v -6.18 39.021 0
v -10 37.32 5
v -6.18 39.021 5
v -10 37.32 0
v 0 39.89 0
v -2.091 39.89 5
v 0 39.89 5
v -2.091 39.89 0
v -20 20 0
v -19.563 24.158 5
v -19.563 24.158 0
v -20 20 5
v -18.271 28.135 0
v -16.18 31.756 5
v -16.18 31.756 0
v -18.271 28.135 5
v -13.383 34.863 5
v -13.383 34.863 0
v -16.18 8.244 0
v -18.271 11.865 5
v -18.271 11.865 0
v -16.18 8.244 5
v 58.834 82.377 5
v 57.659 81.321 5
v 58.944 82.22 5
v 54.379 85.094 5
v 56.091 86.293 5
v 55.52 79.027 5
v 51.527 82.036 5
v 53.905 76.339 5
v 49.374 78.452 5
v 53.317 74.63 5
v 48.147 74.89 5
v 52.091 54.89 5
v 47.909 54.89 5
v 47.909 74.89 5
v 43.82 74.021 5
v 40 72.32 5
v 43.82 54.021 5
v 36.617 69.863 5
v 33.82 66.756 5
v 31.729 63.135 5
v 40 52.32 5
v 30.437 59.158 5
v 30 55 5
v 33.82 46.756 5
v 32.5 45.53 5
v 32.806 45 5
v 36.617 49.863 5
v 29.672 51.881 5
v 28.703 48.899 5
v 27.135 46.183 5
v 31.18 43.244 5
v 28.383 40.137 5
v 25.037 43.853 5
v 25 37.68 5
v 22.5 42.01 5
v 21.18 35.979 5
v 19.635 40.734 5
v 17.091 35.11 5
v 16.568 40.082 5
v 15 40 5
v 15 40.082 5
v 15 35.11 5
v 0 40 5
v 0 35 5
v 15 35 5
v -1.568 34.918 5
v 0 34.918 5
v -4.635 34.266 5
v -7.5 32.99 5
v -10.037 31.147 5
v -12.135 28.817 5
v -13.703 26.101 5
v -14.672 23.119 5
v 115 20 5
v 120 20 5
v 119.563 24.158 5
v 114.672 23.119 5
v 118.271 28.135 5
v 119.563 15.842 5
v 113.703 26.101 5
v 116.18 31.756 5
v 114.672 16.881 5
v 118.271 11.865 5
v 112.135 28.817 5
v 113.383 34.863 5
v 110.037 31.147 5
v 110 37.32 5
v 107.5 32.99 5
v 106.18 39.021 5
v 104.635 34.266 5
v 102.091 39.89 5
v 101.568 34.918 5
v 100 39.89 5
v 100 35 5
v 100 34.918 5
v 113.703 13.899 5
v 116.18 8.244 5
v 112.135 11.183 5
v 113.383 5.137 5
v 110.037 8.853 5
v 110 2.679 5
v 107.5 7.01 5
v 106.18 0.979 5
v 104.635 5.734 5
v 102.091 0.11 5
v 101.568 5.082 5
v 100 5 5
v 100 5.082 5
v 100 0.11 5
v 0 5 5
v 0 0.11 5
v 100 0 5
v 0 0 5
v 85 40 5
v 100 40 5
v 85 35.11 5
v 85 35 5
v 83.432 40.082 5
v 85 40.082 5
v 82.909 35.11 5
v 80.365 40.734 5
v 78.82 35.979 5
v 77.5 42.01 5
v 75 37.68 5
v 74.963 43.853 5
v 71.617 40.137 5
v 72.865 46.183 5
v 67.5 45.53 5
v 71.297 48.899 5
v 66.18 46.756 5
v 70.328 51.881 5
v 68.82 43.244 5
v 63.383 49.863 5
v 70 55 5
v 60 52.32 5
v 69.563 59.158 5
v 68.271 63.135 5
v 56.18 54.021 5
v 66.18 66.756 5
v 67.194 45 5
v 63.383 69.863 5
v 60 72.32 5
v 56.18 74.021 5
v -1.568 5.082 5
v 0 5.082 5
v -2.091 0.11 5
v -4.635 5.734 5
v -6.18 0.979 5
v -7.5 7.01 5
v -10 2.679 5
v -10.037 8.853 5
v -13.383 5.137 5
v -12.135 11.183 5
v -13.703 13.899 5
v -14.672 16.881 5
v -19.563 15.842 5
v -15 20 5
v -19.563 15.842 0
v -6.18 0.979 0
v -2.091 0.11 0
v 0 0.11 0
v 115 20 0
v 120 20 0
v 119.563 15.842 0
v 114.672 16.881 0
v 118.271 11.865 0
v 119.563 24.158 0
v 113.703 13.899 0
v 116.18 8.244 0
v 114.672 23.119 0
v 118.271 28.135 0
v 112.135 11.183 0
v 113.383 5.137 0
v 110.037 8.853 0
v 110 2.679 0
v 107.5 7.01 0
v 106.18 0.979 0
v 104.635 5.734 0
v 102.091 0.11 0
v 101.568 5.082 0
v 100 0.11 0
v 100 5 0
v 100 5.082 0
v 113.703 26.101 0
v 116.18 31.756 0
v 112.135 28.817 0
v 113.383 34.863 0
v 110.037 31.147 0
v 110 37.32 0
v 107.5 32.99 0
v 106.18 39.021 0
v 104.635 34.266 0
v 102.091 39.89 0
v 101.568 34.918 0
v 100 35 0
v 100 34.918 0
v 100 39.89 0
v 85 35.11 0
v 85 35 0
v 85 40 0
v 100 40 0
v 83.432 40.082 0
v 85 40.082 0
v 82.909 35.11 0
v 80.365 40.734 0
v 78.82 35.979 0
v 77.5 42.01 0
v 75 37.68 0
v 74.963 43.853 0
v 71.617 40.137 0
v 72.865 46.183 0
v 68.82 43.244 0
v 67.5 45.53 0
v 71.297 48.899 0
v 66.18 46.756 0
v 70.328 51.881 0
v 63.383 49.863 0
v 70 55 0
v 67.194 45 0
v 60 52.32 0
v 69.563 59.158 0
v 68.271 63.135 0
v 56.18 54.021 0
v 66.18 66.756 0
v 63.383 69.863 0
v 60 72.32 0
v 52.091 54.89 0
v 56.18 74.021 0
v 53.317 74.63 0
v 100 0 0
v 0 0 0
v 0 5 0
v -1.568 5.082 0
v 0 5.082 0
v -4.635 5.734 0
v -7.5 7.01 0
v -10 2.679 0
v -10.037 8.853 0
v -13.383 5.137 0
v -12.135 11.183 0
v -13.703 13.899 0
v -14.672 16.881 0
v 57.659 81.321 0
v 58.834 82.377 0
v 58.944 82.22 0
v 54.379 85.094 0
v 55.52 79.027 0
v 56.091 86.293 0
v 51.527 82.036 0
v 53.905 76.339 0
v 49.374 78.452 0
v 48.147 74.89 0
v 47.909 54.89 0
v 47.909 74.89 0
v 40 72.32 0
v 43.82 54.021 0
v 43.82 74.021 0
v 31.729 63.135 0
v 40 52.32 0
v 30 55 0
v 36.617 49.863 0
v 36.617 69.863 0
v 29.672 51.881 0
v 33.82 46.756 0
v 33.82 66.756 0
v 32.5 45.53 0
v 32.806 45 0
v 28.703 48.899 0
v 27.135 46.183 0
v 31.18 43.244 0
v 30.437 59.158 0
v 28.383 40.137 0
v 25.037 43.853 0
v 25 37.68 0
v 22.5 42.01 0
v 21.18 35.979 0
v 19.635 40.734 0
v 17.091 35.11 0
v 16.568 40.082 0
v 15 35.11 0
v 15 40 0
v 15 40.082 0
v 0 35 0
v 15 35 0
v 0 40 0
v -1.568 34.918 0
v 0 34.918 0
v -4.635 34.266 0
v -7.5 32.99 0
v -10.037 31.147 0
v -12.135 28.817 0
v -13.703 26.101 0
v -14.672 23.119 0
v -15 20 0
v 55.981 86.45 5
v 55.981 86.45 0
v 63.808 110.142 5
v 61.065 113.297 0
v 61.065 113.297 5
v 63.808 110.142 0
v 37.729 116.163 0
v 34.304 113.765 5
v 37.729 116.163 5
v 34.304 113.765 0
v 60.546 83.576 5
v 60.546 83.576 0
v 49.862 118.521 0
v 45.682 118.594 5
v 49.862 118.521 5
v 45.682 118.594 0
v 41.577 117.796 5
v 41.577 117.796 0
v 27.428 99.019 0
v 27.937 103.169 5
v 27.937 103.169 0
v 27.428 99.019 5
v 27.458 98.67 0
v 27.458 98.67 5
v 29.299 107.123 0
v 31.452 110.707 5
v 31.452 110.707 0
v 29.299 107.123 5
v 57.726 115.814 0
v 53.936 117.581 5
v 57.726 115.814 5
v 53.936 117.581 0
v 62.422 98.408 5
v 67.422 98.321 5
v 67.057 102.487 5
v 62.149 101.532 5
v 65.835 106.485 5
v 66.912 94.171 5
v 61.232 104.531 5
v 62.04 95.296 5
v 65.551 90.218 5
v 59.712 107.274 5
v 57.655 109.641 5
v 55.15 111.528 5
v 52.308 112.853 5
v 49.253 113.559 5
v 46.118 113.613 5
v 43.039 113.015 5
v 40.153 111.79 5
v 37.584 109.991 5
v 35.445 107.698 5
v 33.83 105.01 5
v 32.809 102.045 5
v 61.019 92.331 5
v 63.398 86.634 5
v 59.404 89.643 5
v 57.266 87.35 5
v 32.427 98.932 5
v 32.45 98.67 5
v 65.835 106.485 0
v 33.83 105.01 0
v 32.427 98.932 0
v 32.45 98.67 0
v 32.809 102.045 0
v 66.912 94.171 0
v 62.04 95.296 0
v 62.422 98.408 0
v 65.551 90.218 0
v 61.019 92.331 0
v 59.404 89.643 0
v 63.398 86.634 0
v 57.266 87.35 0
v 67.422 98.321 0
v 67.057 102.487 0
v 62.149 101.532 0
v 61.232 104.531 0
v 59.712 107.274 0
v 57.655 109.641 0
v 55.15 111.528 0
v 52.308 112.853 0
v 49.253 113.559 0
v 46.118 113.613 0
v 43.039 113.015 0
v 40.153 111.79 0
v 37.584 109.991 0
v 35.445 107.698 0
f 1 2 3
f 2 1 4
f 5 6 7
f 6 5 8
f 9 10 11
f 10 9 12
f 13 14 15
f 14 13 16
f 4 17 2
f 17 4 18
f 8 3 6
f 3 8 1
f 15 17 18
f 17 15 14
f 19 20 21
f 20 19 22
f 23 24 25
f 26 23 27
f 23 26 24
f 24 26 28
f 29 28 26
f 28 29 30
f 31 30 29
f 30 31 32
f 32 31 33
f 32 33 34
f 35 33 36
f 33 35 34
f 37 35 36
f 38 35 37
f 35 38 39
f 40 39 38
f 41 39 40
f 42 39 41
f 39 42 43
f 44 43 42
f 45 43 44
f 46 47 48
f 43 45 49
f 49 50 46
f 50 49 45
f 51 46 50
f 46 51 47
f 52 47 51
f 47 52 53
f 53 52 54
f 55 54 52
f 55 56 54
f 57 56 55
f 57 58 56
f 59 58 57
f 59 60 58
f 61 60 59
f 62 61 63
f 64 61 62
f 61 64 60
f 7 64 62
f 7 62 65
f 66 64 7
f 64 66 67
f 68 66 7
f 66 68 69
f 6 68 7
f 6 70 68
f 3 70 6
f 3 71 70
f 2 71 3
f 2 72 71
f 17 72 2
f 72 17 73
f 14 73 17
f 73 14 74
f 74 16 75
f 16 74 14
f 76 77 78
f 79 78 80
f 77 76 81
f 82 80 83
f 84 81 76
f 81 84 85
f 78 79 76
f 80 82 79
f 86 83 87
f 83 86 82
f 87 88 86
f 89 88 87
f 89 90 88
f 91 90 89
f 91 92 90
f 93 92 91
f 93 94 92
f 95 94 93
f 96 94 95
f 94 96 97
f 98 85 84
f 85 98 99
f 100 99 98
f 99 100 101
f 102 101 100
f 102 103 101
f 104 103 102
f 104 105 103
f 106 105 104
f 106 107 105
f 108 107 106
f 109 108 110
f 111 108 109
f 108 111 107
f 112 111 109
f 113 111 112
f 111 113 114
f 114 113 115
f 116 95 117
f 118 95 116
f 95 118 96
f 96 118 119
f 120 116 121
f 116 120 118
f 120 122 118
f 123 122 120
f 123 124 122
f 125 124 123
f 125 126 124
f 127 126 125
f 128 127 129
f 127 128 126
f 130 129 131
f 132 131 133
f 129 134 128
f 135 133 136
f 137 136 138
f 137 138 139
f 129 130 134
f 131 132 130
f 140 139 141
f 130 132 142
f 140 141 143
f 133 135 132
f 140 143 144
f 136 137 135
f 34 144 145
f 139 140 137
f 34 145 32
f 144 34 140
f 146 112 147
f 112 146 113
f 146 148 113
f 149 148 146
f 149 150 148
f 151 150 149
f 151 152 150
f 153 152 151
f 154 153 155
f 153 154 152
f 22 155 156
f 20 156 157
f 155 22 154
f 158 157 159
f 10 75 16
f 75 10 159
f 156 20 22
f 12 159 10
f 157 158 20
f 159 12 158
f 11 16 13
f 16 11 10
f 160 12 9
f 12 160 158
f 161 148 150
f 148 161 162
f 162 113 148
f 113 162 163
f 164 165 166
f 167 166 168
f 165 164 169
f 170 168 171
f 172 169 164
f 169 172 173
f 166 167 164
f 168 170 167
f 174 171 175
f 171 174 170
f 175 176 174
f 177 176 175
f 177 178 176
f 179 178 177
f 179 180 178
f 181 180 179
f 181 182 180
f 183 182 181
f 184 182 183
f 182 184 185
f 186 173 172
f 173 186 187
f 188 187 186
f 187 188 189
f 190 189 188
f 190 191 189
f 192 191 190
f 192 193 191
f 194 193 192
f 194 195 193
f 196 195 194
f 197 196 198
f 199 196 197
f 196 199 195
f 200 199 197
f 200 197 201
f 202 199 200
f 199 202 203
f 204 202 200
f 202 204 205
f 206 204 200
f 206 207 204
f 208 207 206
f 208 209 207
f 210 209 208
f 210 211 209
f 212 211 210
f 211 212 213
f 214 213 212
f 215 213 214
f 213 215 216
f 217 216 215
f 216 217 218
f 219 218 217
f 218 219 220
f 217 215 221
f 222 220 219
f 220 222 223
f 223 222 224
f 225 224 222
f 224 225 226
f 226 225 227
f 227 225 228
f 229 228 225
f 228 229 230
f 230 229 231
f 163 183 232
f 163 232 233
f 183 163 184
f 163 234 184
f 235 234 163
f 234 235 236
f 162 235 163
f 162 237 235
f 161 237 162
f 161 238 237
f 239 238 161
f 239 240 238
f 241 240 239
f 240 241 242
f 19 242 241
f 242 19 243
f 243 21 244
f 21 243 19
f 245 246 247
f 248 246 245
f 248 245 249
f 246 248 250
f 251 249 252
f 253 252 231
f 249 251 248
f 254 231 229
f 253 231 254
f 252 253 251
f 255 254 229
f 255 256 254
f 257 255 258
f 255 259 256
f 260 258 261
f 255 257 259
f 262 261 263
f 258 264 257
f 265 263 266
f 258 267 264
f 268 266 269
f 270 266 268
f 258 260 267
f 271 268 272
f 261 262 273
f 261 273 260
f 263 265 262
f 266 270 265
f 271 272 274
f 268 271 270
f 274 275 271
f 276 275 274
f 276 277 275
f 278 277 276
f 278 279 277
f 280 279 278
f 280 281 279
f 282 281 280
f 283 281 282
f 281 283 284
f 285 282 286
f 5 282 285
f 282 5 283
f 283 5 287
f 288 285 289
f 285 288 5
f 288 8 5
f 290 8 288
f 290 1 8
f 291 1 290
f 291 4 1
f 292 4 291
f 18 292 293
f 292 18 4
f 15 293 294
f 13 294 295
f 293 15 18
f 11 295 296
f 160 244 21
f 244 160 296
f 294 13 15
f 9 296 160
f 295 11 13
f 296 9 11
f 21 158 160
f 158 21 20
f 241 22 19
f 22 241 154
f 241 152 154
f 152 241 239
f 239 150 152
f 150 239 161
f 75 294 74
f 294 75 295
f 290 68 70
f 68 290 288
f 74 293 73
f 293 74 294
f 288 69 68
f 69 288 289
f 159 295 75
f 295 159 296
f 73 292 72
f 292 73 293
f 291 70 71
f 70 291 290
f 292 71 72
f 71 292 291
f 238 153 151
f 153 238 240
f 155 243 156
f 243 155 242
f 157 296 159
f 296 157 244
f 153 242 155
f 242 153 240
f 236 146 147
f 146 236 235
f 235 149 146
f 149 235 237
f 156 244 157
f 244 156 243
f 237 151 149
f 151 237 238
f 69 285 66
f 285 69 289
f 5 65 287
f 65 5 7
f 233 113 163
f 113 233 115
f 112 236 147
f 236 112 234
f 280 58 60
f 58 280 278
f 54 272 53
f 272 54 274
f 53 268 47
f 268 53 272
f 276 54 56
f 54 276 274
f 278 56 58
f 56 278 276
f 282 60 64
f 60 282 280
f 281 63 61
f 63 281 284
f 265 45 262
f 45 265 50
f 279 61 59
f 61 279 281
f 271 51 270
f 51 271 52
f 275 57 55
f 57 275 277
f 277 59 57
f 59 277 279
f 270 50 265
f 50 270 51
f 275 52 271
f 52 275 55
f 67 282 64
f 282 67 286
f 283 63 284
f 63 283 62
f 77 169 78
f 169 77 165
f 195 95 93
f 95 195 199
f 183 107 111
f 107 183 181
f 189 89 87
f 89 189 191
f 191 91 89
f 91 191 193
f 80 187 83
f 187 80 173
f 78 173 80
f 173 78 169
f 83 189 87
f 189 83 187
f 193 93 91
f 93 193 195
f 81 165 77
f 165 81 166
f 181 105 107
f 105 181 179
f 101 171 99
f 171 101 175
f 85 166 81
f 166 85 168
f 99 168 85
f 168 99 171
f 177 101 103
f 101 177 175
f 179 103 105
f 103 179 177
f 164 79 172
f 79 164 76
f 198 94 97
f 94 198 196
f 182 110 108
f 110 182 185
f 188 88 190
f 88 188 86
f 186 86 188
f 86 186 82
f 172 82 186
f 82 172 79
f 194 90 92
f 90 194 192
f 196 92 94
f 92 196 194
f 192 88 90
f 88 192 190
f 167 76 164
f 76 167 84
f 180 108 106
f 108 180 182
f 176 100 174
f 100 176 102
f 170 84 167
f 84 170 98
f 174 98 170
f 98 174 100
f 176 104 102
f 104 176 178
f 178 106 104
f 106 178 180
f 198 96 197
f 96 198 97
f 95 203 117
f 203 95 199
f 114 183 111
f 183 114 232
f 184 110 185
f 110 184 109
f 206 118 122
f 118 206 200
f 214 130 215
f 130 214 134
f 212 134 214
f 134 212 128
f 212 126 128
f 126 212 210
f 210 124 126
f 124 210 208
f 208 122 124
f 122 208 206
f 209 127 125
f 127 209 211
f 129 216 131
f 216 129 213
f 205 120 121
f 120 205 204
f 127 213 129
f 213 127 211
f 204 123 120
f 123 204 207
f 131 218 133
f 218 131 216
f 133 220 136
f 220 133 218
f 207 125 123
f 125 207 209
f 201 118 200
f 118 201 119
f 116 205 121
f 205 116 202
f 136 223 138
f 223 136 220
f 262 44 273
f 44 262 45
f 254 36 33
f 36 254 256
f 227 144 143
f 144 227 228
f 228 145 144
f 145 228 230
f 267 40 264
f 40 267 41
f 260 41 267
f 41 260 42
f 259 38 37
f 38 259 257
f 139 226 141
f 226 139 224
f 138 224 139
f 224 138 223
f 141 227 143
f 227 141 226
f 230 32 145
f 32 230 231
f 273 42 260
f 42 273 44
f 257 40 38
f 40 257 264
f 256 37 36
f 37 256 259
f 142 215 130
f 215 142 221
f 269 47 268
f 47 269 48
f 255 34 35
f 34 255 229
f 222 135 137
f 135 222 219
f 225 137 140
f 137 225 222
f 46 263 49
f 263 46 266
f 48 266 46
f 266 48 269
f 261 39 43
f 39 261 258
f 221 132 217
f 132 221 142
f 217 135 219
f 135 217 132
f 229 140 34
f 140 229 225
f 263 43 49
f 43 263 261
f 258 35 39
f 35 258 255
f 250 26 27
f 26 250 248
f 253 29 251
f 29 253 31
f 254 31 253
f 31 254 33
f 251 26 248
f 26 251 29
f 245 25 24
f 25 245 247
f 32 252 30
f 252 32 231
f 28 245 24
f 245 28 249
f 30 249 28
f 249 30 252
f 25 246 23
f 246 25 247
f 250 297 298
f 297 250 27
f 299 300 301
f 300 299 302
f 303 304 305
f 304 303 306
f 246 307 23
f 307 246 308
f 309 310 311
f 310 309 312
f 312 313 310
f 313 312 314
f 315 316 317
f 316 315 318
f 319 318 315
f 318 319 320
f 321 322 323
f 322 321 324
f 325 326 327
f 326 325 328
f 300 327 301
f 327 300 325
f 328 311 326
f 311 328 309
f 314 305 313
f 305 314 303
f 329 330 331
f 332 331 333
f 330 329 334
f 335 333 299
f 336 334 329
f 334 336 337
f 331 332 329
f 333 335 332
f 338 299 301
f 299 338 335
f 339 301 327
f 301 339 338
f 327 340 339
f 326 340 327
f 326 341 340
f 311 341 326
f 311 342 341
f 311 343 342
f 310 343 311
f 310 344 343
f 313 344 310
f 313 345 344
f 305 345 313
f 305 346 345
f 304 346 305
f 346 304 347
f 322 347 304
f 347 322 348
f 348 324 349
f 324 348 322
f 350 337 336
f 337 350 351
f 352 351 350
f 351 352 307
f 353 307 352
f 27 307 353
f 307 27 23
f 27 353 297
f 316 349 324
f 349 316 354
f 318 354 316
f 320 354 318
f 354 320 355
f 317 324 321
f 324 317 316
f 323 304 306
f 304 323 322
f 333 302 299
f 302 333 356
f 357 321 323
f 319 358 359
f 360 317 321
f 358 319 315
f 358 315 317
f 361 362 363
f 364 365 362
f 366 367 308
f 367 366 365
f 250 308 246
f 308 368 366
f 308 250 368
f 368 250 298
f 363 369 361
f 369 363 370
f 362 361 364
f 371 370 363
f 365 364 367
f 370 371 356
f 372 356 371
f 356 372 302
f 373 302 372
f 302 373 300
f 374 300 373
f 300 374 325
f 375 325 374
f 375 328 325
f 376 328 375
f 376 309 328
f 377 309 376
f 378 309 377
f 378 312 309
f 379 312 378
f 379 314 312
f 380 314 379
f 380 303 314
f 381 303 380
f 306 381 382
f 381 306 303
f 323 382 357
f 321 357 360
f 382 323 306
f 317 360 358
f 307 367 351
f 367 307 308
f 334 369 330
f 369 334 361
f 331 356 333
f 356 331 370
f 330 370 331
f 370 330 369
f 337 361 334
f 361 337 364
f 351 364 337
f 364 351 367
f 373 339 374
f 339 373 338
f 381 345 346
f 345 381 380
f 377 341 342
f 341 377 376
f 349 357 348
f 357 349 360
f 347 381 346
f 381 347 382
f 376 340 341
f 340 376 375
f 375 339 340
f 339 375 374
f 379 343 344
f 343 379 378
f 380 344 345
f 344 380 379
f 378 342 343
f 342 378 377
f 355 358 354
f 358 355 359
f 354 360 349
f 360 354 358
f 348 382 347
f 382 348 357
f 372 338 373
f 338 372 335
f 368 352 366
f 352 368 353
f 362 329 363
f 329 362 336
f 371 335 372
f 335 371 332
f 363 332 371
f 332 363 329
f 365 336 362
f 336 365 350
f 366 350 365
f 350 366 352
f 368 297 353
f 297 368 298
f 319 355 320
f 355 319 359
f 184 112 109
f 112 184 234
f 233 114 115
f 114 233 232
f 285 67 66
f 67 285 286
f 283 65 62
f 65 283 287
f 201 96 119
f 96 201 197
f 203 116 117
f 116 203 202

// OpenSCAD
/*
 * Child hanger (C) by Tobias Wilken
 */
 
thickness = 5;
width = 100;
curve_radius = 20;
curve_radius_inner = curve_radius - thickness;


cube([width, thickness, thickness]);

// LEFT
translate([0, curve_radius, 0]) {
    difference() {
        cylinder(h=thickness, r=curve_radius);
        translate([0, 0, -1]) cylinder(h=thickness + 2, r=curve_radius_inner);
        translate([0, -curve_radius, -1]) cube([curve_radius, 2 * curve_radius, thickness + 2]);
    }
}

translate([0, 2 * curve_radius - thickness, 0]) cube([width/2 - 2 * curve_radius + thickness, thickness, thickness]);

translate([width/2 - 2 * curve_radius + thickness, 3 * curve_radius - thickness, 0]) {
    difference() {
        cylinder(h=thickness, r=curve_radius);
        translate([0, 0, -1]) cylinder(h=thickness + 2, r=curve_radius_inner);
        translate([-curve_radius, -curve_radius, -1]) cube([curve_radius, 2 * curve_radius, thickness + 2]);
        translate([-1, 0, -1]) cube([curve_radius + 1, curve_radius, thickness + 2]);
    }
}


// RIGHT
translate([width, curve_radius, 0]) {
    difference() {
        cylinder(h=thickness, r=curve_radius);
        translate([0, 0, -1]) cylinder(h=12, r=curve_radius_inner);
        translate([-curve_radius, -curve_radius, -1]) cube([curve_radius, 2 * curve_radius, thickness + 2]);
    }
}
translate([width/2 + 2 * curve_radius - thickness, 2 * curve_radius - thickness, 0]) cube([width/2 - 2 * curve_radius + thickness, thickness, thickness]);

translate([width / 2 + 2 * curve_radius - thickness, 3 * curve_radius - thickness, 0]) {
    difference() {
        cylinder(h=thickness, r=curve_radius);
        translate([0, 0, -1]) cylinder(h=thickness + 2, r=curve_radius_inner);
        translate([0, -curve_radius, -1]) cube([curve_radius, 2 * curve_radius, thickness + 2]);
        translate([-curve_radius, 0, -1]) cube([curve_radius + 1, curve_radius, thickness + 2]);
    }
}

// TOP
translate([width/2, 3 * curve_radius - thickness, 0]) {
    difference() {
        cylinder(h=thickness, r=curve_radius);
        translate([0, -curve_radius, -1]) cylinder(h=thickness + 2, r=curve_radius);
    }
}


hook_rotate = 35;

translate([width / 2 + curve_radius - thickness/2, 3.5 * curve_radius , 0]) {
    rotate([0, 0, hook_rotate]) {
        difference() {
            cylinder(h=thickness, r=curve_radius);
            translate([0, 0, -1]) cylinder(h=thickness + 2, r=curve_radius_inner);
            translate([-curve_radius, -curve_radius, -1]) cube([2 * curve_radius, curve_radius, thickness + 2]);
            translate([0, -curve_radius, -1]) cube([curve_radius, 2 * curve_radius, thickness + 2]);
        }

        translate([0, 2 * curve_radius - thickness, 0]) {
            difference() {
                cylinder(h=thickness, r=curve_radius);
                translate([0, 0, -1]) cylinder(h=thickness + 2, r=curve_radius_inner);
                translate([-30, -30, -1]) cube([30, 30, thickness + 2]);
                rotate([0, 0, -35]) translate([-30, -30, -1]) cube([30, 30, thickness + 2]);
            }
        }
    }
}
